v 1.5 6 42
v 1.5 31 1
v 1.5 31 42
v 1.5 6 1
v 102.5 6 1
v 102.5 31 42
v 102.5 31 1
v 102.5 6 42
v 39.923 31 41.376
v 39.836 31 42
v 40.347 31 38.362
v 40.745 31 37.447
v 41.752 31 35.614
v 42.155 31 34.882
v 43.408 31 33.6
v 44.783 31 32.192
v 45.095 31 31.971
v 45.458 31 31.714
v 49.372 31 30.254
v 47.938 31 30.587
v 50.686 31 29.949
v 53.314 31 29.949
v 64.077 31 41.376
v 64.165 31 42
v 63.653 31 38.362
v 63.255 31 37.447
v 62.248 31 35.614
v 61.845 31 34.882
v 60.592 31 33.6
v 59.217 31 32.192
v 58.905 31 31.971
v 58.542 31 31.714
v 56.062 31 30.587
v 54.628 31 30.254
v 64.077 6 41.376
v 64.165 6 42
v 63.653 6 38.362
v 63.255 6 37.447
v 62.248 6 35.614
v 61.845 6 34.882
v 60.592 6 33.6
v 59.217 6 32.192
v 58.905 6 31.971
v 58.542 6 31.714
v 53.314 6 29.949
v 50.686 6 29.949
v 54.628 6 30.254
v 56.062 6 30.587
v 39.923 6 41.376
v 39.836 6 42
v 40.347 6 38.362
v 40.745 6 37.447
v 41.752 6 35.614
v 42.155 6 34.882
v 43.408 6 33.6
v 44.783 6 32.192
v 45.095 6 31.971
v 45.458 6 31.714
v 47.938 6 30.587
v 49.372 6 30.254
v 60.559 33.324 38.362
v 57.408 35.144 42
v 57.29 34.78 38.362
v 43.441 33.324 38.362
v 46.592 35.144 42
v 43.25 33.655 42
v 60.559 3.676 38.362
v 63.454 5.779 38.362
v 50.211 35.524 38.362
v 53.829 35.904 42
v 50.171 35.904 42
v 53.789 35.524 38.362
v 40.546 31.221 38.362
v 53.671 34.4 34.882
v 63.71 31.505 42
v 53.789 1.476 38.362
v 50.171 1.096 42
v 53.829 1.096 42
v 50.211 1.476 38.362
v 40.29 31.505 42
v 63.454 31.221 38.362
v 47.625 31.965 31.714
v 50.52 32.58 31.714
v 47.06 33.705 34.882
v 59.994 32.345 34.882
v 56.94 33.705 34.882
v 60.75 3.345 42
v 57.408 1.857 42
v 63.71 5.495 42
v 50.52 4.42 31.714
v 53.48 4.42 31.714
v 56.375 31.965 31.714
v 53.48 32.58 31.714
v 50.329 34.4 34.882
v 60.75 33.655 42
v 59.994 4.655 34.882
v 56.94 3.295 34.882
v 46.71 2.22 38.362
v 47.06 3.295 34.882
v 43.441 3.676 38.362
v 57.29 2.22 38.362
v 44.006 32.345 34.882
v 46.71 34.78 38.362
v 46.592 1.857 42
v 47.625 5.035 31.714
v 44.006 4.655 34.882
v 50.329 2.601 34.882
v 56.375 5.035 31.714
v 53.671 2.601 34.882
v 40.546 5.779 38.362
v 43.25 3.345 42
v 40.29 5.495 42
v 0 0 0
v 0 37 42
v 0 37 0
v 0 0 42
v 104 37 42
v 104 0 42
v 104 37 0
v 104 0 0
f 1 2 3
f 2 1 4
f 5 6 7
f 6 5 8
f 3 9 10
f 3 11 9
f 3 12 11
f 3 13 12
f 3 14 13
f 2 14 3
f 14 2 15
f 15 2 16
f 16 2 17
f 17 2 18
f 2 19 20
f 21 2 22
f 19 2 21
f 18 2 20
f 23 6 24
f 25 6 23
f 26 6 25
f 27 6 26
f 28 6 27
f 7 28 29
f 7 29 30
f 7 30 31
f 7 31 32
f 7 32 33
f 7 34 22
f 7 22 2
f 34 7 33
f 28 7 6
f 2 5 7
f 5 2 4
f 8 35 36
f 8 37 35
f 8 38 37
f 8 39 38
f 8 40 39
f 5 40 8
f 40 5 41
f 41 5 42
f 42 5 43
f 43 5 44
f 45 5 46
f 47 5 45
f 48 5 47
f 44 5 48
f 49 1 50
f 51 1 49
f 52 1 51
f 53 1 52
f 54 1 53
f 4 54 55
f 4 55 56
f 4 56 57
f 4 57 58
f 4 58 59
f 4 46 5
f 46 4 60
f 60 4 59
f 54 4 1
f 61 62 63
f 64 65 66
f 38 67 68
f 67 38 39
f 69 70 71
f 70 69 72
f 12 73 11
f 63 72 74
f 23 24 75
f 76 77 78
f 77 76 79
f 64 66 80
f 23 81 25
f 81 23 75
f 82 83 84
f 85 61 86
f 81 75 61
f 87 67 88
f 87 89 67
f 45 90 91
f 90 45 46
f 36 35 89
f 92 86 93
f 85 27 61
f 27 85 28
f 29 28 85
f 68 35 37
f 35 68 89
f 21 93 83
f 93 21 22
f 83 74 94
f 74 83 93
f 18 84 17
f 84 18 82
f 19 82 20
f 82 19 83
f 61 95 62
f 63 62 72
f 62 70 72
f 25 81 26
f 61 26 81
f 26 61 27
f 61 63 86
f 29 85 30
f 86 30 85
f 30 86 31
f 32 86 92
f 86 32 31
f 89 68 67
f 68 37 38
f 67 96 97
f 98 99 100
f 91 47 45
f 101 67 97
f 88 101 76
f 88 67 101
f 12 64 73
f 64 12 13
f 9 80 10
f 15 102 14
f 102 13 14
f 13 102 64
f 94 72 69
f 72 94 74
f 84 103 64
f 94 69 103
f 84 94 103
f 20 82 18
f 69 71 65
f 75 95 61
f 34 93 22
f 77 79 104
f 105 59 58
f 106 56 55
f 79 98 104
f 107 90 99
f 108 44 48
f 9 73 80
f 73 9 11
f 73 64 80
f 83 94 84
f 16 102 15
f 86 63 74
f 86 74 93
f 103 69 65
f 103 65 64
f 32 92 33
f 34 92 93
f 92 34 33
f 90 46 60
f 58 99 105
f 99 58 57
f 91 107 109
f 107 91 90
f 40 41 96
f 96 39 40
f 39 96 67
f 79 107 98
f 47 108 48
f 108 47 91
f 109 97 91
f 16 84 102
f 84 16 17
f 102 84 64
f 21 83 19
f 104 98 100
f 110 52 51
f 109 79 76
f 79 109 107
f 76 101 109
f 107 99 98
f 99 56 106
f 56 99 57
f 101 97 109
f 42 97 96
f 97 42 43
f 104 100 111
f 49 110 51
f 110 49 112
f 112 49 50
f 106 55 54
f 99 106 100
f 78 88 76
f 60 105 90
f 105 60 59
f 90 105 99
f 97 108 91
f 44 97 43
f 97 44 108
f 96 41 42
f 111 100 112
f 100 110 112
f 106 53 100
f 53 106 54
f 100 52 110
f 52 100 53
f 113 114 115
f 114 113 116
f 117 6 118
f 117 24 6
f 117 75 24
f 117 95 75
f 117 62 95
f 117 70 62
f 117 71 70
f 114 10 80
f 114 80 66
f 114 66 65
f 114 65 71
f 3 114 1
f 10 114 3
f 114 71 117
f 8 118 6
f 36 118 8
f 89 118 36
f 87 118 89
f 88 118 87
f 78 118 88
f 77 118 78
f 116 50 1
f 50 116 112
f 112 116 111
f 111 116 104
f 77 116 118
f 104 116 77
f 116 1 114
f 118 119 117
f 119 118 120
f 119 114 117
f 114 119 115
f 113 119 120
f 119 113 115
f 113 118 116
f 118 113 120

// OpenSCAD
// file: lib/common.scad
// common.scad — Shared utility modules for the plant-eye enclosure
// All dimensions in millimeters

// Rounded box centered at origin
module rounded_cube(size, radius = 2) {
    hull() {
        for (x = [-1, 1], y = [-1, 1], z = [-1, 1]) {
            translate([
                x * (size[0]/2 - radius),
                y * (size[1]/2 - radius),
                z * (size[2]/2 - radius)
            ])
            sphere(r = radius, $fn = 20);
        }
    }
}

// Rounded box sitting on Z=0 (bottom face at origin)
module rounded_cube_bottom(size, radius = 2) {
    translate([0, 0, size[2]/2])
        rounded_cube(size, radius);
}

// Ventilation slot pattern — a row of slots along X axis
// count: number of slots
// slot_length: length of each slot
// slot_width: width of each slot
// spacing: center-to-center distance between slots
// thickness: extrusion depth (should exceed wall thickness)
module vent_slots(count, slot_length, slot_width, spacing, thickness) {
    for (i = [0 : count - 1]) {
        translate([(i - (count - 1) / 2) * spacing, 0, 0])
            cube([slot_width, slot_length, thickness], center = true);
    }
}

// Cylinder standoff for PCB mounting
// height: total standoff height
// outer_d: outer diameter
// hole_d: screw hole diameter
module standoff(height, outer_d, hole_d) {
    difference() {
        cylinder(h = height, d = outer_d, $fn = 24);
        translate([0, 0, -0.1])
            cylinder(h = height + 0.2, d = hole_d, $fn = 24);
    }
}

// Screw boss — a standoff with a surrounding reinforcement base
module screw_boss(height, outer_d, hole_d, base_d, base_h) {
    standoff(height, outer_d, hole_d);
    cylinder(h = base_h, d = base_d, $fn = 24);
}

// Mounting tab with screw hole, for joining base and top
module mounting_tab(width, depth, thickness, hole_d) {
    difference() {
        translate([0, 0, thickness/2])
            cube([width, depth, thickness], center = true);
        cylinder(h = thickness * 3, d = hole_d, center = true, $fn = 24);
    }
}

// Hexagonal vent pattern (honeycomb)
// rows, cols: grid size
// hex_r: hex radius (center to vertex)
// spacing: center-to-center
// thickness: extrusion depth
module hex_vent(rows, cols, hex_r, spacing, thickness) {
    dx = spacing;
    dy = spacing * sqrt(3) / 2;
    for (row = [0 : rows - 1]) {
        for (col = [0 : cols - 1]) {
            x_off = (row % 2 == 0) ? 0 : dx / 2;
            translate([
                col * dx + x_off - (cols - 1) * dx / 2,
                row * dy - (rows - 1) * dy / 2,
                0
            ])
            cylinder(h = thickness, r = hex_r, $fn = 6, center = true);
        }
    }
}
// main file
include <lib/common.scad>;

base_x = 104;
base_y = 37;
base_z = 42;

folga = 1;

current_y = 6;

module token_holder_slot(x = 100, y = 10, z = 40) {

  x = x + folga;
  y = y + folga + 1; //1 from the lettering
  z = z + 1; // 1 from lettering

  translate([(base_x - x)/2, current_y, base_z - z])
    cube([x, y, z + 0.01]);
  translate([base_x/2, current_y + y/2, base_z])
    sphere(r=(y/2) + 5);
}

difference() {
  cube([base_x, base_y, base_z]);
  token_holder_slot(100, 23, 40);
}
